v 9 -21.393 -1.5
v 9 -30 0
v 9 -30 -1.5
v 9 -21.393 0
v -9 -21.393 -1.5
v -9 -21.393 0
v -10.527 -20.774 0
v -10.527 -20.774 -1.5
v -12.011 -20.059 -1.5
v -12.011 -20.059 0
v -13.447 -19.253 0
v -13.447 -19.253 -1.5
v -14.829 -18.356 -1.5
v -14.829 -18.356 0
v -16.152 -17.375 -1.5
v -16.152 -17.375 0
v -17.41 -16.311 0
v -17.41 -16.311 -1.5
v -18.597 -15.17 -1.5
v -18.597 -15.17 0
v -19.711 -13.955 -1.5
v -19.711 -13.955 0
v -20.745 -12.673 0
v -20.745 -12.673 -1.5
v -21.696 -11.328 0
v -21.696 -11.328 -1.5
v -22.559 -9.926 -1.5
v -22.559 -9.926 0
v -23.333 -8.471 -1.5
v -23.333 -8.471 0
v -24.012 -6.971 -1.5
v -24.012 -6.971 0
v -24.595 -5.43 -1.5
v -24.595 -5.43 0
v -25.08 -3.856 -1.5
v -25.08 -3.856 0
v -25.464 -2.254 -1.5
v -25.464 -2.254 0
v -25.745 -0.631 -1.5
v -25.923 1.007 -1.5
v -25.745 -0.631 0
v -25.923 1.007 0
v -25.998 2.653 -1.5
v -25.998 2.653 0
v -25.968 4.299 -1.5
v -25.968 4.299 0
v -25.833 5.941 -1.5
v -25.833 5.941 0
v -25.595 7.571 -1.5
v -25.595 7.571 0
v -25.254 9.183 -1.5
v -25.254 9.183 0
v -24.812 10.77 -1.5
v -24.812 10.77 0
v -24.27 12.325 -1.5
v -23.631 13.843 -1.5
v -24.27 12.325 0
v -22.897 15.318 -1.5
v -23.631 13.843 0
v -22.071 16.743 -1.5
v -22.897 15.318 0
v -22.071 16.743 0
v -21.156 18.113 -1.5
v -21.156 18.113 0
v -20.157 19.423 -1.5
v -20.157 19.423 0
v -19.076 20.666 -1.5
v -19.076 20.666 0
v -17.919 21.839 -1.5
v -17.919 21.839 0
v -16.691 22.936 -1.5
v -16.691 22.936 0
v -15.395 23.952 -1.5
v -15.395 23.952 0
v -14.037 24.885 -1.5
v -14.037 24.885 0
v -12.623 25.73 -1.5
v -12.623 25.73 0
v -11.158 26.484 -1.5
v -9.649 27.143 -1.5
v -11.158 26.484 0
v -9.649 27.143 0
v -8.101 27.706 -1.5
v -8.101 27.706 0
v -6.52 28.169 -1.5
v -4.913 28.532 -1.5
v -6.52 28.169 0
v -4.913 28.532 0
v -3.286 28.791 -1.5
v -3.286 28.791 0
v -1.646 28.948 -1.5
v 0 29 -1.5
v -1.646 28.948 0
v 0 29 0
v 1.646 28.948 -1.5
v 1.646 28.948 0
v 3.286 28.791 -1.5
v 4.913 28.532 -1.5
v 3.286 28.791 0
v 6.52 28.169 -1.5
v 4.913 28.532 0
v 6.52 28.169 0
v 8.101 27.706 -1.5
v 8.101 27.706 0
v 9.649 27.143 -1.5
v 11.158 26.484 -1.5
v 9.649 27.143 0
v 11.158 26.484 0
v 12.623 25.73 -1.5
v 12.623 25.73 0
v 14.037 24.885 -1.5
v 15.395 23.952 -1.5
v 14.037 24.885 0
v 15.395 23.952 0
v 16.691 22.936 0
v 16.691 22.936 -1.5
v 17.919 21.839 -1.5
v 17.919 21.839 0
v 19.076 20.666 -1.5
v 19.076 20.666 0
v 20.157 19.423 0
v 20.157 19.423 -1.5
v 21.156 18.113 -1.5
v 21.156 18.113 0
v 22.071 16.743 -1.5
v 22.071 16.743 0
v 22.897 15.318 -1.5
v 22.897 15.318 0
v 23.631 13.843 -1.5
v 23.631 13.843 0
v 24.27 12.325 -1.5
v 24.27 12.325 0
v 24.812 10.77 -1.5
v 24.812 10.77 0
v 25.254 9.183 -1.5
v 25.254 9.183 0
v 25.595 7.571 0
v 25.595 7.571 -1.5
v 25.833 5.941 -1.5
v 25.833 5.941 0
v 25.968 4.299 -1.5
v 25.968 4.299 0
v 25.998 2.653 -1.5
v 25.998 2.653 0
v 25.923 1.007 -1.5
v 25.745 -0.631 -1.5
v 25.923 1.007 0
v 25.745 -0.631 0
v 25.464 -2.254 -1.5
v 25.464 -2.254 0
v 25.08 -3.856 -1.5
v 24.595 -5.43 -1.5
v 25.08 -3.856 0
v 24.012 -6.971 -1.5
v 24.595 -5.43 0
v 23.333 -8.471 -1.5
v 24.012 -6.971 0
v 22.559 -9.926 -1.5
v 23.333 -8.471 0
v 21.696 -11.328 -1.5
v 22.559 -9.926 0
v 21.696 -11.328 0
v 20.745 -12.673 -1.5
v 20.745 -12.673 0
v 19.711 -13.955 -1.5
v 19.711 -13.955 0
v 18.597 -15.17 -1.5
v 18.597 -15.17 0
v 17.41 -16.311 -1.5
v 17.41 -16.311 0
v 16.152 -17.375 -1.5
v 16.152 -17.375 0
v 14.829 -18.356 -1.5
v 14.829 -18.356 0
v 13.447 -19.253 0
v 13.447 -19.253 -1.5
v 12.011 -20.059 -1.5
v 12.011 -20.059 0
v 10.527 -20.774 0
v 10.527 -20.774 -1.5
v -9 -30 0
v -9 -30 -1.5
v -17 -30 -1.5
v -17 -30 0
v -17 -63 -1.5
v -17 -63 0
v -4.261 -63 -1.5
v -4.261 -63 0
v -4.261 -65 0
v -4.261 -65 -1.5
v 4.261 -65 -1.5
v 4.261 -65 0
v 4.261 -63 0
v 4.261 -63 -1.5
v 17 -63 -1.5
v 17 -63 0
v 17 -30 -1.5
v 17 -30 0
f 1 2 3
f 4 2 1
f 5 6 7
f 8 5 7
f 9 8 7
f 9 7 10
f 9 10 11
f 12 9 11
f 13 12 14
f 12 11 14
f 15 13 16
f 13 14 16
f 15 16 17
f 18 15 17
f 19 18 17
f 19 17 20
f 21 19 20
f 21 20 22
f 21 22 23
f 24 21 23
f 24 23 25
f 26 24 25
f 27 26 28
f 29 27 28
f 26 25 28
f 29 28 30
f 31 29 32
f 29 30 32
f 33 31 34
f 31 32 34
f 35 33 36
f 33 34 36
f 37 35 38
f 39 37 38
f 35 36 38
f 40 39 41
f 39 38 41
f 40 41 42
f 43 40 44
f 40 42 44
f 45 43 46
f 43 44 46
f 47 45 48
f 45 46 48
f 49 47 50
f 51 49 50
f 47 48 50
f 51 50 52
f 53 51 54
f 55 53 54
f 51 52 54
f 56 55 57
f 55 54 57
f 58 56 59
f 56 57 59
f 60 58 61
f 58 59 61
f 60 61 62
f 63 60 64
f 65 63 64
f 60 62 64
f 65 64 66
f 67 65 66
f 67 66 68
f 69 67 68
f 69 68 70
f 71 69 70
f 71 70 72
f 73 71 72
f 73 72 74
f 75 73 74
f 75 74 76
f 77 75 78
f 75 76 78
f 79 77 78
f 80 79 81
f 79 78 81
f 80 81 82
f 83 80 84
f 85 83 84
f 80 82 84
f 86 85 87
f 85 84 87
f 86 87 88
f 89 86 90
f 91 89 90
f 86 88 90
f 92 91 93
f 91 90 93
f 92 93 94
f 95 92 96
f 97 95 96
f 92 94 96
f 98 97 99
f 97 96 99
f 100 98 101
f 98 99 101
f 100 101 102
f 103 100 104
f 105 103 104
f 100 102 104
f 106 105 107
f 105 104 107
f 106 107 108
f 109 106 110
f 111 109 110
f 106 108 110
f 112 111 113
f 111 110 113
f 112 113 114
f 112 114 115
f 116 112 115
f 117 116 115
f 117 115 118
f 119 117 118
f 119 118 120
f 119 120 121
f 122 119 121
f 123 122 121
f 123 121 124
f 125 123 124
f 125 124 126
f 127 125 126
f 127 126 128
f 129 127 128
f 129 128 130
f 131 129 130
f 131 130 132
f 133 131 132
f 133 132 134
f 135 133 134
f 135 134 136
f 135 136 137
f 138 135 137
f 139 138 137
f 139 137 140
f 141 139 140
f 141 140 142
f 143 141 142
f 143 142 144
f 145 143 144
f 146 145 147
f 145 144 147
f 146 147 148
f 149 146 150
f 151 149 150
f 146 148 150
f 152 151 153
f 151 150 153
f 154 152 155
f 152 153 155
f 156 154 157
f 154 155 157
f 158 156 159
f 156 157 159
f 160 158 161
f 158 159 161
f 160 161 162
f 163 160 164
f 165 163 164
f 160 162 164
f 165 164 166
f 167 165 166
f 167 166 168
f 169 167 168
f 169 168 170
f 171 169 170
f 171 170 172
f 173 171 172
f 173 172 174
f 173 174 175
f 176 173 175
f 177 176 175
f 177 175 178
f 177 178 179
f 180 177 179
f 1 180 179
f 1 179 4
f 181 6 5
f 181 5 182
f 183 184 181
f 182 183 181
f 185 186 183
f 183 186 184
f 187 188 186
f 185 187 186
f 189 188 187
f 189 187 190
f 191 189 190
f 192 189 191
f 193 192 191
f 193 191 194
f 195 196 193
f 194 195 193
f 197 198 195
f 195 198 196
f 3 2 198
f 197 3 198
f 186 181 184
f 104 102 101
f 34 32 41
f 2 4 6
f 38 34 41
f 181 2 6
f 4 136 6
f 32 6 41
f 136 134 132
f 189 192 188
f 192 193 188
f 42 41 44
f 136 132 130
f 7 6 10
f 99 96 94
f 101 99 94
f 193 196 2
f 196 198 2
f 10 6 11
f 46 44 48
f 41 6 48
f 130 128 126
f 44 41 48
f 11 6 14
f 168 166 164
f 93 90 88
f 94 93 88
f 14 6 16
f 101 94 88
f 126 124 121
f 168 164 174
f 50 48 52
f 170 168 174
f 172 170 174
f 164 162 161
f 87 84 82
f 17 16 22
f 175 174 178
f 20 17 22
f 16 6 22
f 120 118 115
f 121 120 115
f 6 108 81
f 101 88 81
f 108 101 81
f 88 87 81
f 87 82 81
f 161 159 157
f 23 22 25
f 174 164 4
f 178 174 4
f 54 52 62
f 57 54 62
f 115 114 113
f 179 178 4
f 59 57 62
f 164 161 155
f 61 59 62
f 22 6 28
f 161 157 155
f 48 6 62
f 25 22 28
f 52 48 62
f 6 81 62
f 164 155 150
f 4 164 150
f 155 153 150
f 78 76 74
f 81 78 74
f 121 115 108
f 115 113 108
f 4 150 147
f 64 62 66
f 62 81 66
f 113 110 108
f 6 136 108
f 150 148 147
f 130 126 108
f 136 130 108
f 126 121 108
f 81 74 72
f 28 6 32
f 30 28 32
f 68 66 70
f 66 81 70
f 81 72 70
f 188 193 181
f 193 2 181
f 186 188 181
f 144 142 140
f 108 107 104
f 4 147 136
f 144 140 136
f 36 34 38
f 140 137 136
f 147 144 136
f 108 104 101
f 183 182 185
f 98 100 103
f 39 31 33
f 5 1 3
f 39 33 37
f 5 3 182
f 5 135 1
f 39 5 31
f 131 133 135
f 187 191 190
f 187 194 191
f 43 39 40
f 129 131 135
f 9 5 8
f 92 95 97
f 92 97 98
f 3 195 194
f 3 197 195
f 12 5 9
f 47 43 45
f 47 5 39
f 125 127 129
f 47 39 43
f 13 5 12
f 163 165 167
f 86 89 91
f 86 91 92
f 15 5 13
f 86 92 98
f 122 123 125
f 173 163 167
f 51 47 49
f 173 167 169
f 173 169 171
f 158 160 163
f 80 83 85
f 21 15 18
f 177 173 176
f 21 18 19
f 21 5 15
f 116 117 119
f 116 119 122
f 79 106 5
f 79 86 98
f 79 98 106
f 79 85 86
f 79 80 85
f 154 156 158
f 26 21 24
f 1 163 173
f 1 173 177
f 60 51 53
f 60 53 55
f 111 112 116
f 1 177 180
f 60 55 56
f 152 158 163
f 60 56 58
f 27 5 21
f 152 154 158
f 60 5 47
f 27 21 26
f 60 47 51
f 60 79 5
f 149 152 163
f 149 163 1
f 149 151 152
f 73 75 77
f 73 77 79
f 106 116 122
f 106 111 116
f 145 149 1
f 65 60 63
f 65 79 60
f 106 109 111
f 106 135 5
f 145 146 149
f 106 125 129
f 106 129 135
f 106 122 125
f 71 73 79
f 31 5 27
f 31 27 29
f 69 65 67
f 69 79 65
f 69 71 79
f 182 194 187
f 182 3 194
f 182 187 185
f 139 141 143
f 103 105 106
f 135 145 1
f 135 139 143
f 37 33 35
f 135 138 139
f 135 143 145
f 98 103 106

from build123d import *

# Parameters (mm, degrees)
PAD_DEPTH = 1.5


with BuildPart() as part:
    # Sketch → Pad (new body)
    with BuildSketch(Plane(origin=(0, 0, 0), x_dir=(1, 0, 0), z_dir=(0, 0, -1))):
        with BuildLine():
            Line((9, 30), (9, 21.392622))
            ThreePointArc((-9, 21.392622), (0, -29), (9, 21.392622))
            Line((-9, 21.392622), (-9, 30))
            Line((-17, 30), (-9, 30))
            Line((-17, 63), (-17, 30))
            Line((-4.261222, 63), (-17, 63))
            Line((-4.261222, 63), (-4.261222, 65))
            Line((-4.261222, 65), (4.261222, 65))
            Line((4.261222, 65), (4.261222, 63))
            Line((17, 63), (4.261222, 63))
            Line((17, 30), (17, 63))
            Line((9, 30), (17, 30))
        make_face()
    extrude(amount=PAD_DEPTH)


solid = part.part
